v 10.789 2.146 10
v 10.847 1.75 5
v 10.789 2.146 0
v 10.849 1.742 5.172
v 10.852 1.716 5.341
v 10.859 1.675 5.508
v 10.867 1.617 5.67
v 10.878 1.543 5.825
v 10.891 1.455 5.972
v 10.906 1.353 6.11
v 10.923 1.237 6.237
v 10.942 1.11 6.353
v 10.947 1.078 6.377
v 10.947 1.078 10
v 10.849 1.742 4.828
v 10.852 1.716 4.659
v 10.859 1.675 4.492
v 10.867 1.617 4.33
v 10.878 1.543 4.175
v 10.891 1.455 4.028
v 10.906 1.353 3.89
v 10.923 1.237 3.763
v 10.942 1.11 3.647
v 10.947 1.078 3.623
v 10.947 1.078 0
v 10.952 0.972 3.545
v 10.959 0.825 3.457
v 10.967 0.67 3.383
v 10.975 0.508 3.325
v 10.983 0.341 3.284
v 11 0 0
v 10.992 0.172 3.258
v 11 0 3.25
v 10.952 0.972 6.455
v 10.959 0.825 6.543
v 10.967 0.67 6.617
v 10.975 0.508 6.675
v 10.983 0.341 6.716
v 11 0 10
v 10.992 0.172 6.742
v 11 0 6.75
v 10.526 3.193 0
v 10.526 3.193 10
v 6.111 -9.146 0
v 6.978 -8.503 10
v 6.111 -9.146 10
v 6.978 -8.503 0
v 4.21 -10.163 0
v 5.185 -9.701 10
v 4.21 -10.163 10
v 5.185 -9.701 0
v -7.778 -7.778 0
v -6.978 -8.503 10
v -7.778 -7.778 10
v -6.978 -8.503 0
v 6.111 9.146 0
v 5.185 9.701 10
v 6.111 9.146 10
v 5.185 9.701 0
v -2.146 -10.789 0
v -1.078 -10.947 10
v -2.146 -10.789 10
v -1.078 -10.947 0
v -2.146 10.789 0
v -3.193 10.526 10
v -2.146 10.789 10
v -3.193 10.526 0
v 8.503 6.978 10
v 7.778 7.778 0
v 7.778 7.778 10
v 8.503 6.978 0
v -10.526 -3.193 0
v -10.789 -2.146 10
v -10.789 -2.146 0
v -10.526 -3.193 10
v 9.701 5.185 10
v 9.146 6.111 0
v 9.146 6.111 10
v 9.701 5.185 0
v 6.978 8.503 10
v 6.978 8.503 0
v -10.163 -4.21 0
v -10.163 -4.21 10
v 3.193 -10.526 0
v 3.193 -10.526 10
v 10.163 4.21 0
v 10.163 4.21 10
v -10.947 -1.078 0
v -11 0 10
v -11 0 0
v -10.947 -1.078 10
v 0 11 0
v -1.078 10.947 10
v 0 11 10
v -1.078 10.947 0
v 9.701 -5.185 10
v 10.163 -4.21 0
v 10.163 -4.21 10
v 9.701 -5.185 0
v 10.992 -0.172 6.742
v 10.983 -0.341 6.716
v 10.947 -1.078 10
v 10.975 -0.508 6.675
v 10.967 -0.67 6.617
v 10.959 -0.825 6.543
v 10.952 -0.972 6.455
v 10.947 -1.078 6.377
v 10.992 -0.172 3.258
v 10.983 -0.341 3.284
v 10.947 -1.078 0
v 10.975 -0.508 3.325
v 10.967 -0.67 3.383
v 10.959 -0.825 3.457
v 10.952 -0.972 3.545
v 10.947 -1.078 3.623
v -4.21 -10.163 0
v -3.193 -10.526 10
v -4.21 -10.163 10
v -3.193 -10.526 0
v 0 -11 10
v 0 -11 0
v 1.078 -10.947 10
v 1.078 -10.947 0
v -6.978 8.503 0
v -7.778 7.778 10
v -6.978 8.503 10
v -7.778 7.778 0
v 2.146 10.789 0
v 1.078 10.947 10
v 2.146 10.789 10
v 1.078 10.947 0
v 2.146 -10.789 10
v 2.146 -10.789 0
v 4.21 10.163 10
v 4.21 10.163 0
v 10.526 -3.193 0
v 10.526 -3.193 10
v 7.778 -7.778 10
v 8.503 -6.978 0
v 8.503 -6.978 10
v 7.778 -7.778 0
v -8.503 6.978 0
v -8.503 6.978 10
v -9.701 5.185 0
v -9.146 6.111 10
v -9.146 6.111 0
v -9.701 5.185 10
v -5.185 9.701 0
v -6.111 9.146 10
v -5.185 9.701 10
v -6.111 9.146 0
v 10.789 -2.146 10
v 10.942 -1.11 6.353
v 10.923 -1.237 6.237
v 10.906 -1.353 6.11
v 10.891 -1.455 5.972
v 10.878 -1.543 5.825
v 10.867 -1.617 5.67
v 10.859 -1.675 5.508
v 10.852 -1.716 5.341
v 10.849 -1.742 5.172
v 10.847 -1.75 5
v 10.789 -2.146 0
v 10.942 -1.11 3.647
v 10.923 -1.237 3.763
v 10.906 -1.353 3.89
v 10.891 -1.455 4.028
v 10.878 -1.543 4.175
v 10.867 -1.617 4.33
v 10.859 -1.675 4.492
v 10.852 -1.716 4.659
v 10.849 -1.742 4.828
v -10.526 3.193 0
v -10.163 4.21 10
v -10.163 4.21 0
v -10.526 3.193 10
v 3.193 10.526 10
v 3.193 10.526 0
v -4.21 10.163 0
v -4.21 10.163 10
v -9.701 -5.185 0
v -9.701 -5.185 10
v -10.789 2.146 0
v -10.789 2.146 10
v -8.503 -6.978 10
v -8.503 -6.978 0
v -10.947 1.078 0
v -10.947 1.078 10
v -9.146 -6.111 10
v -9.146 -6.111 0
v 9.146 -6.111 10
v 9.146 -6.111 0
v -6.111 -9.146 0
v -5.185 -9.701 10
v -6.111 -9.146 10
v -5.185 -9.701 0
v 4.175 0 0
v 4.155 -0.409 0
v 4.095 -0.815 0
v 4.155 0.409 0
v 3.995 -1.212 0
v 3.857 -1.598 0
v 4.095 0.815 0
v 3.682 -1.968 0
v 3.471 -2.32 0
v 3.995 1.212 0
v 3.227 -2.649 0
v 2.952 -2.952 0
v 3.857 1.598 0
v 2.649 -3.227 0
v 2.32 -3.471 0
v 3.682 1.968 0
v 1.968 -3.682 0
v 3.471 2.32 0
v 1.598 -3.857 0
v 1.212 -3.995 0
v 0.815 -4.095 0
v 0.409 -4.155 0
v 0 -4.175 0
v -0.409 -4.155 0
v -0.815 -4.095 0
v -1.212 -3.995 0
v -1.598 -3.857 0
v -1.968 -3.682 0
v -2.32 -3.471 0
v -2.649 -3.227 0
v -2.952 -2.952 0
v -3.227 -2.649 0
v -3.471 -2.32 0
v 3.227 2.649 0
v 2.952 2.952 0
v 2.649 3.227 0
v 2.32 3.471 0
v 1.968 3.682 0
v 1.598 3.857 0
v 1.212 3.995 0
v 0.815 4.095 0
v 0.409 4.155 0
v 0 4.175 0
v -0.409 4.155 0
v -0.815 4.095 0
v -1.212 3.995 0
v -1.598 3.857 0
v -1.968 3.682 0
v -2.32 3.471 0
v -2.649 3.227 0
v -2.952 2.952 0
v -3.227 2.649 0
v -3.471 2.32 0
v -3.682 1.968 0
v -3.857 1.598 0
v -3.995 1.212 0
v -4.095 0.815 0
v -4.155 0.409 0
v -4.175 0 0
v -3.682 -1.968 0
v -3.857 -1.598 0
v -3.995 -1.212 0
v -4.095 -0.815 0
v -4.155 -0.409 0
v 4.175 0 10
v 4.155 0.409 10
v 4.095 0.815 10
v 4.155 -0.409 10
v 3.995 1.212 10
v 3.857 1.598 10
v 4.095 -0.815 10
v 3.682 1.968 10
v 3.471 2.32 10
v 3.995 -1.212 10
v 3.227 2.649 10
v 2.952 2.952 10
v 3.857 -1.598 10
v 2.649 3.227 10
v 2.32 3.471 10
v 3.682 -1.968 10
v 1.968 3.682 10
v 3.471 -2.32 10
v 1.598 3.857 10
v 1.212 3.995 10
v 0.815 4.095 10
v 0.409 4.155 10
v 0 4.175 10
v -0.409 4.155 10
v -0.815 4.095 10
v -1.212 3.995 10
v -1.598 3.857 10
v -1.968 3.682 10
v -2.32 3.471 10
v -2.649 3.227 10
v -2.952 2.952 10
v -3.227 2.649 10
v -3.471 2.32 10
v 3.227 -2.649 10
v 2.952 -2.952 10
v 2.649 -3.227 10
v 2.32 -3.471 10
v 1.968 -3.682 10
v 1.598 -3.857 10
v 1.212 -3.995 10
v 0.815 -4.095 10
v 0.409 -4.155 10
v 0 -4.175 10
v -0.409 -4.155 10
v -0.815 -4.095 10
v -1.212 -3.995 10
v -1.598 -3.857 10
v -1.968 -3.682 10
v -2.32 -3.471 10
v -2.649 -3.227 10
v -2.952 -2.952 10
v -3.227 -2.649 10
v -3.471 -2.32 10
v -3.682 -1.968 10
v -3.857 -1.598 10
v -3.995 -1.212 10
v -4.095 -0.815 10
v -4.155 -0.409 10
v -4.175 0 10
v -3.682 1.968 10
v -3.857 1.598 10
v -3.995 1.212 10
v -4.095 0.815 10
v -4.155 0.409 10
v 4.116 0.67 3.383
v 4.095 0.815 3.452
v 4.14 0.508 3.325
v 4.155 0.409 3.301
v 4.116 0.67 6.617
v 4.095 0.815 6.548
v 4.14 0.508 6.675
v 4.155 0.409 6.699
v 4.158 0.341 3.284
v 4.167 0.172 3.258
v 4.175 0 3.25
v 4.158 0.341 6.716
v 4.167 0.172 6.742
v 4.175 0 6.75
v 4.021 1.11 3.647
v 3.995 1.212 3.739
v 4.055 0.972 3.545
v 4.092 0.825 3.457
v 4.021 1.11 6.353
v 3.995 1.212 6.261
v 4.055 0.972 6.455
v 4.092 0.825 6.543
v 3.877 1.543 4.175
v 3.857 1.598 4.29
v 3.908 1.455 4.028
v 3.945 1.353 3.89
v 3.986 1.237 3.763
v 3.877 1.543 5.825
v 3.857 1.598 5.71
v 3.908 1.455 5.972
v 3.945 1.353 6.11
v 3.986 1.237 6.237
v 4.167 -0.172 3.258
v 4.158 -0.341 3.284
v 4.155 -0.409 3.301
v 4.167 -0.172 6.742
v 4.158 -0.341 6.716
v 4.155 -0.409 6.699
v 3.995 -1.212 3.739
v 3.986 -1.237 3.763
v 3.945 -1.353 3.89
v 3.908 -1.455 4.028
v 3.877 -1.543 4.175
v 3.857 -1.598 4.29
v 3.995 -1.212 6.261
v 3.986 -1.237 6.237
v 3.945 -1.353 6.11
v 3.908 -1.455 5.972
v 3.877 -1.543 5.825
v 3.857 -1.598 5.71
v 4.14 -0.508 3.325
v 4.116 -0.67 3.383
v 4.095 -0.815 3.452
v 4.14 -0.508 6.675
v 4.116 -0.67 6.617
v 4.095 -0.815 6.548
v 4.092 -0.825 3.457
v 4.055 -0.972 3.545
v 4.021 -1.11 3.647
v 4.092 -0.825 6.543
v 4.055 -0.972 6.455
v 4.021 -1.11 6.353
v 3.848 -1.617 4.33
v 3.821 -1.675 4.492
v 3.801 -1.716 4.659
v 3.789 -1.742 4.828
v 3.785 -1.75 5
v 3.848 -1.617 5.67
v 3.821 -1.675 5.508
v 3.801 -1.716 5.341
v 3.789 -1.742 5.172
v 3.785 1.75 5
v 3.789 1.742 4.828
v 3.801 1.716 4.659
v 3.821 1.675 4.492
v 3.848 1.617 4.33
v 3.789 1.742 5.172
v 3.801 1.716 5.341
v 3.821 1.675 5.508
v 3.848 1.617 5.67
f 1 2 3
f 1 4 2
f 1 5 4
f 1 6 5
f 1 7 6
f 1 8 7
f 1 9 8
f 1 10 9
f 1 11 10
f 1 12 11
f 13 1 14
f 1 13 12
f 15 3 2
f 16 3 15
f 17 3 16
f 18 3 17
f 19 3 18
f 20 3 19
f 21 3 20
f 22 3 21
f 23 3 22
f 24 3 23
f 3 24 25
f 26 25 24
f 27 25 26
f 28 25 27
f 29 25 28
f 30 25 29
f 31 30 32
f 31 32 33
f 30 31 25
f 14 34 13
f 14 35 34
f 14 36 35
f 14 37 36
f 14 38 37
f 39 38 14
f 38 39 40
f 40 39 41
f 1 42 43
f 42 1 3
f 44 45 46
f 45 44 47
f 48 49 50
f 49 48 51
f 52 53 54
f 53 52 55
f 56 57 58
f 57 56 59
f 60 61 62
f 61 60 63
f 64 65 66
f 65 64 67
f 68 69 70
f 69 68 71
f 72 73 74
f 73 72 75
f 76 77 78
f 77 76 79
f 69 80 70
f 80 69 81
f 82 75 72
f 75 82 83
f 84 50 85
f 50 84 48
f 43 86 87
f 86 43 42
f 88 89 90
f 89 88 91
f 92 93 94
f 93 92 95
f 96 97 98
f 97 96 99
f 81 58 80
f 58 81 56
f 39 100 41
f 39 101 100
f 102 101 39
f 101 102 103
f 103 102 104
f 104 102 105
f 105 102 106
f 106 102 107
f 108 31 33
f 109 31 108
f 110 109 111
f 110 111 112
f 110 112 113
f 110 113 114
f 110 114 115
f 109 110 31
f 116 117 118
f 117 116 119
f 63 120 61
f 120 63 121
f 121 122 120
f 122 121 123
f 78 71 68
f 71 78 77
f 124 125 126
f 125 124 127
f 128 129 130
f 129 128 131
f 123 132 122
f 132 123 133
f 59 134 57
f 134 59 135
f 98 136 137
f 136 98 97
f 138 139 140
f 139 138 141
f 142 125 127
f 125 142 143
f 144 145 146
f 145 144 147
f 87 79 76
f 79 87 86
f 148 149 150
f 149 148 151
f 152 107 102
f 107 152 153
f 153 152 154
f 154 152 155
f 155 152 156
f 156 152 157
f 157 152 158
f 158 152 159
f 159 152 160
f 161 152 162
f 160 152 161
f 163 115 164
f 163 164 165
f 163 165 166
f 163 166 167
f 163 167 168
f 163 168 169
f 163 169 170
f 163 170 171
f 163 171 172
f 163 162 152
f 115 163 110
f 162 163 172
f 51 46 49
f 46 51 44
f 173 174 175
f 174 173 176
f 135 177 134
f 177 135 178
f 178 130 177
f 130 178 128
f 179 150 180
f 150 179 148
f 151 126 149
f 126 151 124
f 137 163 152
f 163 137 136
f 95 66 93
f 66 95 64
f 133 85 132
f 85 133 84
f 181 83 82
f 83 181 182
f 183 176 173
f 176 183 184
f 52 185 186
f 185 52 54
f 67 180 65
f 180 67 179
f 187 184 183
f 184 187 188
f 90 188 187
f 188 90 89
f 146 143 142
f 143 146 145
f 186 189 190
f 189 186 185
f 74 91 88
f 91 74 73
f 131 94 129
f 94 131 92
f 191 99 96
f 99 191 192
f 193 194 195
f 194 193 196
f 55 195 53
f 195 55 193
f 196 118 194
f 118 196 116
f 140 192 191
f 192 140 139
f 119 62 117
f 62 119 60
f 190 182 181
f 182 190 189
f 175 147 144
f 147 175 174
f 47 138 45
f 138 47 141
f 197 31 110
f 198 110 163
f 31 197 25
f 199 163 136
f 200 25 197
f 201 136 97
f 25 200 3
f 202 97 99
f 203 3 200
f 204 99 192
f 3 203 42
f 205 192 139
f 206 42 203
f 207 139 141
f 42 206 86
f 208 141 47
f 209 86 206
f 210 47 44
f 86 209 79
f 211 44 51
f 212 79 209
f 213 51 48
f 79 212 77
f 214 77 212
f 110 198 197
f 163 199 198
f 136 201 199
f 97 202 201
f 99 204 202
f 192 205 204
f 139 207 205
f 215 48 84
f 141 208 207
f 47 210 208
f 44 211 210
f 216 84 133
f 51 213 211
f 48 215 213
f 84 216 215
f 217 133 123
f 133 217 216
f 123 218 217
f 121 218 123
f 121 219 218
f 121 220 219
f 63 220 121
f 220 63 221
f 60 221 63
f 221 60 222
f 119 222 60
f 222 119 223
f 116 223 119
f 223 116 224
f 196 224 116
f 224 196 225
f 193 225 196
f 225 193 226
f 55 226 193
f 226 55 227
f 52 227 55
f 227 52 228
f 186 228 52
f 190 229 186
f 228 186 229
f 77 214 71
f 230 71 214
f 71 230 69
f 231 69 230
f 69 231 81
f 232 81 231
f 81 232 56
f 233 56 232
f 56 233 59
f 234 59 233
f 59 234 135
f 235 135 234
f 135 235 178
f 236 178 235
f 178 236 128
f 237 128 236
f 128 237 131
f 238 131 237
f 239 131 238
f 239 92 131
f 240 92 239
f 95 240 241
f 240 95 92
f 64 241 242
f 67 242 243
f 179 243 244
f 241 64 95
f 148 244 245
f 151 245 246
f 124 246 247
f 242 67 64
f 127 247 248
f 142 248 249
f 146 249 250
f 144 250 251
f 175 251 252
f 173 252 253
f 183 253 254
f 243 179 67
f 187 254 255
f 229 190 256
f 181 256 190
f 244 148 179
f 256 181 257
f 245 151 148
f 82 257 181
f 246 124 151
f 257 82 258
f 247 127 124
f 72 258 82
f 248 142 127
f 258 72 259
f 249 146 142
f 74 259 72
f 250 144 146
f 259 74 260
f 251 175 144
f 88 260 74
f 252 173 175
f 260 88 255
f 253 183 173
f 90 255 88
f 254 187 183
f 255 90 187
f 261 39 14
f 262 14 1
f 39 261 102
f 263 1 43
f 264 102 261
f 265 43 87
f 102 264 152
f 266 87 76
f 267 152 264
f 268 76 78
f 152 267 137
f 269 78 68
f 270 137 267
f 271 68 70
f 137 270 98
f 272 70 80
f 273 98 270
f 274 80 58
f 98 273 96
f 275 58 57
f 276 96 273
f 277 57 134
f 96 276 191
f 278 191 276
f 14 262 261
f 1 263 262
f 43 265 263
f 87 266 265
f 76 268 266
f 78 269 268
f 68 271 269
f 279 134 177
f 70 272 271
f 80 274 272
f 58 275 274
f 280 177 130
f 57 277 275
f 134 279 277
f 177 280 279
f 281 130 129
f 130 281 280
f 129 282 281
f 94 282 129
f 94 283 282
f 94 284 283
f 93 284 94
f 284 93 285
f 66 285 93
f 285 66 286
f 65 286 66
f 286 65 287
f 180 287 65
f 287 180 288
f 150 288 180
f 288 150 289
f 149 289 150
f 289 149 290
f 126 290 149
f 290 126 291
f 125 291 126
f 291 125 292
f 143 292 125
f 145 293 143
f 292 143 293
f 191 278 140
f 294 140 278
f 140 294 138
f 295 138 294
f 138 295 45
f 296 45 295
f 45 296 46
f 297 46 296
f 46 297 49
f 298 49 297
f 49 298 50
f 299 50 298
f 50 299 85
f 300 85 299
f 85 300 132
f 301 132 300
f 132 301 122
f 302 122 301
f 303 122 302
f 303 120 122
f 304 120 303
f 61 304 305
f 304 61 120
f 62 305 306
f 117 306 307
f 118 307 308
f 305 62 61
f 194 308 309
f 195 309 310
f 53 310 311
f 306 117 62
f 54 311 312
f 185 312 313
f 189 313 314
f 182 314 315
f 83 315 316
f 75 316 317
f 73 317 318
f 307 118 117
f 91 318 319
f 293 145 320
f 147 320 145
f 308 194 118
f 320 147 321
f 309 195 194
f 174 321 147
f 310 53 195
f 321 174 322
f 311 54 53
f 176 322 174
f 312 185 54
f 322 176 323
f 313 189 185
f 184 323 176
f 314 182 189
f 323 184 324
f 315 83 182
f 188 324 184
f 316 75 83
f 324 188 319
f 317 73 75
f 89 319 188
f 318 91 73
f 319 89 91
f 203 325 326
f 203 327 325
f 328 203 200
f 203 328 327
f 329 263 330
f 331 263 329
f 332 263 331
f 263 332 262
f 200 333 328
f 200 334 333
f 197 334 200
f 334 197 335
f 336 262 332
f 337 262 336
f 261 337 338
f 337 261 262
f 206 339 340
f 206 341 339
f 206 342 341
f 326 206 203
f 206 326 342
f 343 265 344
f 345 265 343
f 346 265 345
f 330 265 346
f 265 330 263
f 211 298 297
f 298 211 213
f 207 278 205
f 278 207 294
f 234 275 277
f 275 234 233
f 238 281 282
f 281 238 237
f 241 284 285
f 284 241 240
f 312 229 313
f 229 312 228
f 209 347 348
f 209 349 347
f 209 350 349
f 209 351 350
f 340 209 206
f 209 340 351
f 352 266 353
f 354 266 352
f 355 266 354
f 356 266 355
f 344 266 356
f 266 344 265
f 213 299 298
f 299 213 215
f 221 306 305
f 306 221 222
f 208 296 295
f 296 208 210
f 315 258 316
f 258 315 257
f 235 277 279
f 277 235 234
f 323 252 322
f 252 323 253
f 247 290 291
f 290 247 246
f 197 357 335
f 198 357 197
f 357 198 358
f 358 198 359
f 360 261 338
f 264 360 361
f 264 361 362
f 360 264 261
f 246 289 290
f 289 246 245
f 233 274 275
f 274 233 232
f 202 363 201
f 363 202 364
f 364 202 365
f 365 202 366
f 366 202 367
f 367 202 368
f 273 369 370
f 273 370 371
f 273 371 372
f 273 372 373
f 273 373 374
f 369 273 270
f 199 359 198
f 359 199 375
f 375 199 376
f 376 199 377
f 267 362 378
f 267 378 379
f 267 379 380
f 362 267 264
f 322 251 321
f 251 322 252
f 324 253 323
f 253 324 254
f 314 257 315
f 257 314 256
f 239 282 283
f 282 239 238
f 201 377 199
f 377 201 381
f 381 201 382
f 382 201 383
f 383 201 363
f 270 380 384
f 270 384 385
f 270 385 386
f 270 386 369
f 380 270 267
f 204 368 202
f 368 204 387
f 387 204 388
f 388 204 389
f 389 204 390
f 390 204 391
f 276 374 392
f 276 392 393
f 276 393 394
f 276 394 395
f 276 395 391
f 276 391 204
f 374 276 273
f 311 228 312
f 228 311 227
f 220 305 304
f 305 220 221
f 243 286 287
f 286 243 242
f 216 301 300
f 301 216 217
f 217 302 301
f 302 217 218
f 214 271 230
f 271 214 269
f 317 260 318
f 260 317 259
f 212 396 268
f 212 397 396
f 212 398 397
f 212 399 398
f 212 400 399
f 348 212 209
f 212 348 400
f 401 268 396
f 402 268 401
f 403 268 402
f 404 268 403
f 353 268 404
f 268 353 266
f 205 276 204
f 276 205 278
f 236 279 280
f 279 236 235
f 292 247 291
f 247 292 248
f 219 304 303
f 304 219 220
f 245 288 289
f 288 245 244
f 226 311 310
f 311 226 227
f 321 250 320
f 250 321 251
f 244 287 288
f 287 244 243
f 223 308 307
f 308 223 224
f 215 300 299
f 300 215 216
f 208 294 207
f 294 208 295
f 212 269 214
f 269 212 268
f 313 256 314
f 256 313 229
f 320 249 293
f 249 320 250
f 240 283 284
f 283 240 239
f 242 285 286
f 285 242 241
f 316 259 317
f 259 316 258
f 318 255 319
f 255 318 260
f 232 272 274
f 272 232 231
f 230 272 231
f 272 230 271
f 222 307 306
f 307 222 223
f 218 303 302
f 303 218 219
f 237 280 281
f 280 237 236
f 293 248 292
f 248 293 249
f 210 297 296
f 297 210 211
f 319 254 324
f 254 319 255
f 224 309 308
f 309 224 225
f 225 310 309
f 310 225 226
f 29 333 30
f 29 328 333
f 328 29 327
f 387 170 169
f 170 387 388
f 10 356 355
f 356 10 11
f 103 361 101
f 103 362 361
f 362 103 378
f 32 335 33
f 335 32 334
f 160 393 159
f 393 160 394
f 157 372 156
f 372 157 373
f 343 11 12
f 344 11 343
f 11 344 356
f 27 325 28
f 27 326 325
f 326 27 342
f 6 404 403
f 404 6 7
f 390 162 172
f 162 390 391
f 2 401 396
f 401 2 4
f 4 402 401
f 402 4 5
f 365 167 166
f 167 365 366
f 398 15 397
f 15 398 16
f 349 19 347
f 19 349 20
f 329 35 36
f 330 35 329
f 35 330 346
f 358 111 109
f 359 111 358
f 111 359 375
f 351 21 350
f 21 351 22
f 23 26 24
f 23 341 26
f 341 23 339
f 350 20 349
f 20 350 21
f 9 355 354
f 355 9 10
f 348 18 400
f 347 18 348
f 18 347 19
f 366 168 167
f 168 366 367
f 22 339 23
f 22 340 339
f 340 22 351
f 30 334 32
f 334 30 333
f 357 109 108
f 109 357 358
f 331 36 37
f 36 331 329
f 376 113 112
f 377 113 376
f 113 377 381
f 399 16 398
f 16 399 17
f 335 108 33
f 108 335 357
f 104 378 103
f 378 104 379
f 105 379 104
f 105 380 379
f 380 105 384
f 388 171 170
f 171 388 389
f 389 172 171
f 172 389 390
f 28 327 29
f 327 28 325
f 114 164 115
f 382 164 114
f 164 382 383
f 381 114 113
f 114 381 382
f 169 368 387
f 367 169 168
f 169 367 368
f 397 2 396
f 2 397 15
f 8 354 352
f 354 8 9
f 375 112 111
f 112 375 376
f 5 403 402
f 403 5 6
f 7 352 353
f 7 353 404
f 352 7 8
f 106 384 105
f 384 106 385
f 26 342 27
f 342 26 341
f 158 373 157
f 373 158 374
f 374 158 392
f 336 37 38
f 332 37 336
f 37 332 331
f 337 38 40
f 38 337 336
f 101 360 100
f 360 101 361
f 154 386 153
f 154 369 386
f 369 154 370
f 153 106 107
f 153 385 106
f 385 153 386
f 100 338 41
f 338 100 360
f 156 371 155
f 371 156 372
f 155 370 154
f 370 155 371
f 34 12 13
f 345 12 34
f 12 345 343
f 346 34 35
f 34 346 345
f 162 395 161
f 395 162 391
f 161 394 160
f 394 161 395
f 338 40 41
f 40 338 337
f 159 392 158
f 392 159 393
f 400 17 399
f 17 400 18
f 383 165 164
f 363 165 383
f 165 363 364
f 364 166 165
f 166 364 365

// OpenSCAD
// file: parameters.scad
// =============================================================================
// Gen-AA Vernier flux-claw dual nano-gap — WOUND-AWARE (HARD GATE)
// Improve Gen-X: tighter m2m ≤6.4, more copper (145 t), run_clear 0.70
// =============================================================================

wire_awg            = 26;
wire_od             = 0.45;
turns               = 145;      // +10 vs Gen-X 135
fill                = 0.70;
layers_per_face     = 2;
wind_build_axial    = layers_per_face * wire_od * fill;   // 0.63
wind_build_radial   = 3 * wire_od * fill;                 // 0.945

coil_id_r           = 21.5;
coil_od_r           = 58.0;
span_deg            = 25.0;     // 12 stations; vernier vs 16-pole equiv
former_web          = 2.0;
flange_t            = 0.75;
wall                = 1.2;
slot_w              = 2.4;
mount_hole          = 3.5;
tab_len             = 7.0;

former_bare_h       = former_web + 2 * flange_t;            // 3.5
coil_envelope_h     = former_bare_h + 2 * wind_build_axial; // 4.76

run_clear           = 0.70;
gap_spacer_h        = run_clear + wind_build_axial;         // 1.33
m2m                 = coil_envelope_h + 2 * run_clear;      // 6.16 (beats Gen-X 6.76; ≤6.4 target)

coil_stations       = 12;
bay_r_in            = coil_id_r - 2.0 - wind_build_radial;
bay_r_out           = coil_od_r + 2.0 + wind_build_radial;
bay_span            = span_deg + 4.0;
bay_offset          = 2.0;
stator_thick        = former_bare_h;
stator_od           = 156.0;
shaft_clear_stator  = 36.0;
coil_mount_r        = 28.0;

// Dual rotors: 8+8 Ø20 vernier poles + 24+24 Ø5 flux claws / edge assists
large_pocket_d      = 20.3;
small_pocket_d      = 5.3;
pocket_h            = 5.2;
large_n             = 8;
R_large             = 50.0;
R_small_inner       = 36.0;     // claw inner
R_small_mid         = 50.0;
R_small_outer       = 64.0;
carrier_od          = 152.0;
carrier_thick       = 7.5;
hub_h               = 10.0;
hub_od              = 30.0;
rotor_b_offset_deg  = 22.5;     // vernier offset

shaft_bore          = 8.35;
bearing_d           = 21.85;
bearing_h           = 7.2;
m3_clear            = 3.5;
bolt_r_inner        = 36.0;
bolt_n_inner        = 6;
flange_bolt_r       = 72.0;
flange_bolt_n       = 6;
brace_r             = 68.0;
brace_d             = 4.3;
brace_n             = 4;

spacer_pad_od       = 14.0;
spacer_pad_id       = m3_clear;
endbell_od          = 156.0;
endbell_thick       = 8.0;
endbell_shaft_clear = 10.0;

$fn = 64;
// main file
// Gen-AA shaft collar — print ×2–4
include <parameters.scad>;
$fn = 64;
od = 22; id = shaft_bore; h = 10; set_d = 3.5;
difference() {
    cylinder(d=od, h=h);
    translate([0, 0, -0.1]) cylinder(d=id, h=h + 0.2);
    translate([0, 0, h/2]) rotate([0, 90, 0]) cylinder(d=set_d, h=od);
}
